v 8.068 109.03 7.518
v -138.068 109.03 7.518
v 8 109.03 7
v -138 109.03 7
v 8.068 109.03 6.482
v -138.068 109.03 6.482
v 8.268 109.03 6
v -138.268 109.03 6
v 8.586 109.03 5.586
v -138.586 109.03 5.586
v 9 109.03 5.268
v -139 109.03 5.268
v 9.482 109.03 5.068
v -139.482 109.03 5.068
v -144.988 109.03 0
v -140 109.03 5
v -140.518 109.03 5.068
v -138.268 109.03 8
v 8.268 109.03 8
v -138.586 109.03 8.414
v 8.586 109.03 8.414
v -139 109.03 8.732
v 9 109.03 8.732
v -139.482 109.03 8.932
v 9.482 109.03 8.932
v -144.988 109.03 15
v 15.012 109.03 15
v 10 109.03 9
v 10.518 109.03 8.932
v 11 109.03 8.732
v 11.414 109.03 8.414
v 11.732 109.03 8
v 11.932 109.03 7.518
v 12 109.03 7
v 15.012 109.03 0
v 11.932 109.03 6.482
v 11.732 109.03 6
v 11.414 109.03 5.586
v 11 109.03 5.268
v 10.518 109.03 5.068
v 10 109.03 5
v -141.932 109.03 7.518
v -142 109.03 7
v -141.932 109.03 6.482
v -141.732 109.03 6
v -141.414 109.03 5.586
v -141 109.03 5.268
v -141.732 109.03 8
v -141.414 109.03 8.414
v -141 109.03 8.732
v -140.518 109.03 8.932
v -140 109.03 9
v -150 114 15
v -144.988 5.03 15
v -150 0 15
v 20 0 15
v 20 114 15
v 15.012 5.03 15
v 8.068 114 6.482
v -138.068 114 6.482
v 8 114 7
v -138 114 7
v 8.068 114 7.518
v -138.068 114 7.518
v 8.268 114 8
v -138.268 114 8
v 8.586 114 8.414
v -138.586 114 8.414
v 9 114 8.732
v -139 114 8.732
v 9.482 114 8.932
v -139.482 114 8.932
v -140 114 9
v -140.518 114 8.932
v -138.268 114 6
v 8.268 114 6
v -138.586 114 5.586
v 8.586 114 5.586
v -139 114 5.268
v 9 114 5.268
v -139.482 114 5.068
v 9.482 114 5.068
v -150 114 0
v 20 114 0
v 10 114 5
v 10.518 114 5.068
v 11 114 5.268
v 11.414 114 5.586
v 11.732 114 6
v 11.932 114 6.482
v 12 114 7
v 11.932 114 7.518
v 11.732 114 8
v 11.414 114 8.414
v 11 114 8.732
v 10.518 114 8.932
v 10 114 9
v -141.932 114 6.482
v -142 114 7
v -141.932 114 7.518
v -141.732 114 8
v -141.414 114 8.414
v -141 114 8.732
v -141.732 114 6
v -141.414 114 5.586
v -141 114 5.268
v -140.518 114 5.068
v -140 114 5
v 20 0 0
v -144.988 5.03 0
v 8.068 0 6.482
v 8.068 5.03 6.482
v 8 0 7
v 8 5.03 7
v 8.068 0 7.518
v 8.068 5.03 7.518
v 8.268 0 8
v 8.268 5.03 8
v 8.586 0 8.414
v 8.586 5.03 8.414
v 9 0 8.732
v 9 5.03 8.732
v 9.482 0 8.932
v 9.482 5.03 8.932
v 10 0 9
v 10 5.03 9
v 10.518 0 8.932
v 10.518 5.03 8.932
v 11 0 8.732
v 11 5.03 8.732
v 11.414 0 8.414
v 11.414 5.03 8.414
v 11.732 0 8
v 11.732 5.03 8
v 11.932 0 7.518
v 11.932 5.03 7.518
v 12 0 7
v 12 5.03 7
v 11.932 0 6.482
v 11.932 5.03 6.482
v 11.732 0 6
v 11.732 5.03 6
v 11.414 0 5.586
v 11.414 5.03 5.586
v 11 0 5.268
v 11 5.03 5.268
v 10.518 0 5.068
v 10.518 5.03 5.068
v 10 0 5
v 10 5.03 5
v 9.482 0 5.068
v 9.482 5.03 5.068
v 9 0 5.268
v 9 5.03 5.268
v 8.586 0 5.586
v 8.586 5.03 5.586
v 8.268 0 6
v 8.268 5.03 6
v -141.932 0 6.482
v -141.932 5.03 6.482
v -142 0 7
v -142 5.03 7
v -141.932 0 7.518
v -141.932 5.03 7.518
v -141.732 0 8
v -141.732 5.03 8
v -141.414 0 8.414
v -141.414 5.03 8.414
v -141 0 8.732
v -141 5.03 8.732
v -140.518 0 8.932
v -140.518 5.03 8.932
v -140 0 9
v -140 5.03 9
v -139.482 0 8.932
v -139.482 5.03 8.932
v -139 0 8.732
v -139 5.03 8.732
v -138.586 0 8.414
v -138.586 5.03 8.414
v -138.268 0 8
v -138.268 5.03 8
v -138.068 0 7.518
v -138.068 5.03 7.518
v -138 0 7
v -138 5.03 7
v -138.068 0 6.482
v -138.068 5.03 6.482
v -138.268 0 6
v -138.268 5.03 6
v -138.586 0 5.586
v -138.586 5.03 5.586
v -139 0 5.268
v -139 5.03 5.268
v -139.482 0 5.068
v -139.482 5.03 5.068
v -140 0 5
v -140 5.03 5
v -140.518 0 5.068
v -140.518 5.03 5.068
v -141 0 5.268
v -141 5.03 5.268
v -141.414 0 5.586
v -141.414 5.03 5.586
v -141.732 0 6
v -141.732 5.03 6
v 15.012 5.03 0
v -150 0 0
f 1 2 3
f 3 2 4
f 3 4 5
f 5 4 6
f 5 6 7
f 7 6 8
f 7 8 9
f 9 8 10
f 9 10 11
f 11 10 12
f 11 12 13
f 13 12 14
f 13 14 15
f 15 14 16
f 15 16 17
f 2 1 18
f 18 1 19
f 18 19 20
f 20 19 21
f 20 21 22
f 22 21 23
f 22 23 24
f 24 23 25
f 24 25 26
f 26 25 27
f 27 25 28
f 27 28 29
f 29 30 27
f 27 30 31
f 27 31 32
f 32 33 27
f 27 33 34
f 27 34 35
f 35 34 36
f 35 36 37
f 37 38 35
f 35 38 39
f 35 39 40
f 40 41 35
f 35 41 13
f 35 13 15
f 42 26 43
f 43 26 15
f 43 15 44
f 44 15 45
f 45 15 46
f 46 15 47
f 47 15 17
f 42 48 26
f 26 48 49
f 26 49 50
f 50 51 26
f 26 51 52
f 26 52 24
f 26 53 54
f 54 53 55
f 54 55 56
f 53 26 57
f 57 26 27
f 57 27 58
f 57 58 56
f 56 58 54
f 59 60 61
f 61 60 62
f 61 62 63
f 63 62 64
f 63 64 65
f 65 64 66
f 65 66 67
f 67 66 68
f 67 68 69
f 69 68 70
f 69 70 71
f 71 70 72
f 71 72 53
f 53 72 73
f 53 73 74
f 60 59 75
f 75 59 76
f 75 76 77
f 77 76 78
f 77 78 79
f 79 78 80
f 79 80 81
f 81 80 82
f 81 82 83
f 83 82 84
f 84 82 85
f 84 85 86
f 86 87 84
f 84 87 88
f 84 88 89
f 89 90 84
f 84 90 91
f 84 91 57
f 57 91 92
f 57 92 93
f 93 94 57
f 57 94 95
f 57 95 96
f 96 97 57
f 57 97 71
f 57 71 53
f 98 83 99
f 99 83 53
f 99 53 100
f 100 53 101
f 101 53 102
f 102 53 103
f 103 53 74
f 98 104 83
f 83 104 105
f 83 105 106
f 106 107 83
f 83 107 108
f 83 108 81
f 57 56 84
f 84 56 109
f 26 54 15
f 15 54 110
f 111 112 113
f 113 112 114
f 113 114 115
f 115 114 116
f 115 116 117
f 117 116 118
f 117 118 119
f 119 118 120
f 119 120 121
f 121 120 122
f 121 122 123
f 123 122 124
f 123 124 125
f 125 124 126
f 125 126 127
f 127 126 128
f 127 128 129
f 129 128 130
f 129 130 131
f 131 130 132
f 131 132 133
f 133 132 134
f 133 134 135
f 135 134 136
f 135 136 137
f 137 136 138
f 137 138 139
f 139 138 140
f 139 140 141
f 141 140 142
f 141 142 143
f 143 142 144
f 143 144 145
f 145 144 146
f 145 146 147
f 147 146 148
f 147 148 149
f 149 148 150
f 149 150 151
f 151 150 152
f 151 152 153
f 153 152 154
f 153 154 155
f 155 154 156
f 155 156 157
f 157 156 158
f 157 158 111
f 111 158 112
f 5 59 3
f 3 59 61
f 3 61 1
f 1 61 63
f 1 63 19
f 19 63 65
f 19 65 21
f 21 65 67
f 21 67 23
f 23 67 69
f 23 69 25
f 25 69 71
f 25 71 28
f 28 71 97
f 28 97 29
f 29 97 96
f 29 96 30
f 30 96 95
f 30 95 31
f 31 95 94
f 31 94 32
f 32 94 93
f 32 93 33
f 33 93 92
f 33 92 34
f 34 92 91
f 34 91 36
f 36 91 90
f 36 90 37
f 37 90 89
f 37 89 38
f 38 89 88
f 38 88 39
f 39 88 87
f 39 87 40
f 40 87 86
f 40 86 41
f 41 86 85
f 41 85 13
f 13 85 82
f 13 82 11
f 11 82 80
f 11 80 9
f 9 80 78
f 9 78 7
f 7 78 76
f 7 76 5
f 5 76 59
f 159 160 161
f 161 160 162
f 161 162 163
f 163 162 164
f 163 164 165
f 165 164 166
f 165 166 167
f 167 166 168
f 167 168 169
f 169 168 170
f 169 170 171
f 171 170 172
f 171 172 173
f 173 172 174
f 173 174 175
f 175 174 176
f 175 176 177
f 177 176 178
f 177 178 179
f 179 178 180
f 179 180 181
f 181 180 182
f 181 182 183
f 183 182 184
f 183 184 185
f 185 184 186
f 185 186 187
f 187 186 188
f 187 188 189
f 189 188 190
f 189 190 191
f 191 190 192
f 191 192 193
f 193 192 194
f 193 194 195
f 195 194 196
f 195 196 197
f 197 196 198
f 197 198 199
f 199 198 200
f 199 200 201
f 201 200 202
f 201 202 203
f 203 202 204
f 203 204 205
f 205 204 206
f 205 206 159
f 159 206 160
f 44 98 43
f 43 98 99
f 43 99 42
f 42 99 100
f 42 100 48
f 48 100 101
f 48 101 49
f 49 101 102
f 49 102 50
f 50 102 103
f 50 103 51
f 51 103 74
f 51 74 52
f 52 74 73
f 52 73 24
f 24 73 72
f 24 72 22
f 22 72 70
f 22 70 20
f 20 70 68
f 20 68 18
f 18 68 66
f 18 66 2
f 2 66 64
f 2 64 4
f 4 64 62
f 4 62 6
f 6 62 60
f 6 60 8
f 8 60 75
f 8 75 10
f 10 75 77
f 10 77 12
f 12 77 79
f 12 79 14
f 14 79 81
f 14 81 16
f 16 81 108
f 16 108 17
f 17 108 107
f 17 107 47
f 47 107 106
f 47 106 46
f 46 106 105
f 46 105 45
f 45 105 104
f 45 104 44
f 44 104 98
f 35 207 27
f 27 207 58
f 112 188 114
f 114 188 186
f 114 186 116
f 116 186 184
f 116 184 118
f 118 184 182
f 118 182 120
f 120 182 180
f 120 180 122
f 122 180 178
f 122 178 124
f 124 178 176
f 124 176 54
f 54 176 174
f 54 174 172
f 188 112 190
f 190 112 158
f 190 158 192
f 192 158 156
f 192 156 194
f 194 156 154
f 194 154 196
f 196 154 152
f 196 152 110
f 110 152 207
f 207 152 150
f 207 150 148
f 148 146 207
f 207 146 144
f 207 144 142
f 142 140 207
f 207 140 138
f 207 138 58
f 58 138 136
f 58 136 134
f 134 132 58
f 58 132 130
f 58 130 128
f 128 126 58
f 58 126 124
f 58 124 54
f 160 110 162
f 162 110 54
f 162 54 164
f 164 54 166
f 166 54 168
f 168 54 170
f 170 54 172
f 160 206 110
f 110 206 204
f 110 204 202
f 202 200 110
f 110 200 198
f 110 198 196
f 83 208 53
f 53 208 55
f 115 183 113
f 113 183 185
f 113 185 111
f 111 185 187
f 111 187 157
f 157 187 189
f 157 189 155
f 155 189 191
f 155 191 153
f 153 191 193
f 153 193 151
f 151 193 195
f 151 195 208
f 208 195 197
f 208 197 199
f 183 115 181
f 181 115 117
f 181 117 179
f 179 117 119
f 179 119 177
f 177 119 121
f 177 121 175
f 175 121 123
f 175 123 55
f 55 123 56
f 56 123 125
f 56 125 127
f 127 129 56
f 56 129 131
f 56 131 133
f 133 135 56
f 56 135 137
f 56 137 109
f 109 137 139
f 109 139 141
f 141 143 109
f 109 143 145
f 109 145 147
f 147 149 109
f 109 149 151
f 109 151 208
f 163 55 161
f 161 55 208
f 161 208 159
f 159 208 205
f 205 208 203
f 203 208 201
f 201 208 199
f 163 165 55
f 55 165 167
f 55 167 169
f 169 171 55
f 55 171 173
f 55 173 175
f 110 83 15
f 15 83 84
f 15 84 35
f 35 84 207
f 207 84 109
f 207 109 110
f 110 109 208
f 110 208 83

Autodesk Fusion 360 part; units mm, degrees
sketch "jig" plane through (0, 0, 0) normal (0, 0, 1) x (1, 0, 0)
  line L0 (-150, 0) -> (20, 0)
  line L1 (-150, 0) -> (-150, 116)
  line L2 (-150, 116) -> (20, 116)
  line L3 (20, 116) -> (20, 0)
  line L4 (-144.988, 5.0299) -> (15.012, 5.0299)
  line L5 (-144.988, 5.0299) -> (-144.988, 111.0299)
  line L6 (15.012, 5.0299) -> (15.012, 111.0299)
  line L7 (15.012, 111.0299) -> (-144.988, 111.0299)
  dimension "d1" = 170
  dimension "d2" = 116
  dimension "d3" = 170
  dimension "d4" = 160
  dimension "d5" = 106
  dimension "d6" = 106
extrude "Extrude1" add sketch "jig" along normal blind 10
extrude "Extrude2" add 1 faces at (-91.6627, 1.6766, 10) along direction (0, 0, 1) blind 5
sketch "bolt holes" plane through (0, 0, 0) normal (0, 1, 0) x (1, 0, 0)
  circle A0 centre (10, -7) radius 2
  circle A1 centre (-140, -7) radius 2
  dimension "d11" = 4
  dimension "d12" = 4
extrude "Extrude3" cut sketch "bolt holes" along normal blind 130 contours A1
extrude "Extrude4" cut sketch "bolt holes" along normal blind 140 contours A0
extrude "Extrude5" add 1 faces at (-40.4634, 111.0299, 12.8047) along direction (0, -1, 0) blind 3
extrude "Extrude6" cut 1 faces at (-147.3309, 116, 7.3899) along direction (0, -1, 0) blind 3
extrude "Extrude7" add 1 faces at (-147.3309, 113, 7.3899) along direction (0, 1, 0) blind 1
extrude "Extrude8" cut 1 faces at (-40.4634, 108.0299, 12.8047) along direction (0, 1, 0) blind 1
